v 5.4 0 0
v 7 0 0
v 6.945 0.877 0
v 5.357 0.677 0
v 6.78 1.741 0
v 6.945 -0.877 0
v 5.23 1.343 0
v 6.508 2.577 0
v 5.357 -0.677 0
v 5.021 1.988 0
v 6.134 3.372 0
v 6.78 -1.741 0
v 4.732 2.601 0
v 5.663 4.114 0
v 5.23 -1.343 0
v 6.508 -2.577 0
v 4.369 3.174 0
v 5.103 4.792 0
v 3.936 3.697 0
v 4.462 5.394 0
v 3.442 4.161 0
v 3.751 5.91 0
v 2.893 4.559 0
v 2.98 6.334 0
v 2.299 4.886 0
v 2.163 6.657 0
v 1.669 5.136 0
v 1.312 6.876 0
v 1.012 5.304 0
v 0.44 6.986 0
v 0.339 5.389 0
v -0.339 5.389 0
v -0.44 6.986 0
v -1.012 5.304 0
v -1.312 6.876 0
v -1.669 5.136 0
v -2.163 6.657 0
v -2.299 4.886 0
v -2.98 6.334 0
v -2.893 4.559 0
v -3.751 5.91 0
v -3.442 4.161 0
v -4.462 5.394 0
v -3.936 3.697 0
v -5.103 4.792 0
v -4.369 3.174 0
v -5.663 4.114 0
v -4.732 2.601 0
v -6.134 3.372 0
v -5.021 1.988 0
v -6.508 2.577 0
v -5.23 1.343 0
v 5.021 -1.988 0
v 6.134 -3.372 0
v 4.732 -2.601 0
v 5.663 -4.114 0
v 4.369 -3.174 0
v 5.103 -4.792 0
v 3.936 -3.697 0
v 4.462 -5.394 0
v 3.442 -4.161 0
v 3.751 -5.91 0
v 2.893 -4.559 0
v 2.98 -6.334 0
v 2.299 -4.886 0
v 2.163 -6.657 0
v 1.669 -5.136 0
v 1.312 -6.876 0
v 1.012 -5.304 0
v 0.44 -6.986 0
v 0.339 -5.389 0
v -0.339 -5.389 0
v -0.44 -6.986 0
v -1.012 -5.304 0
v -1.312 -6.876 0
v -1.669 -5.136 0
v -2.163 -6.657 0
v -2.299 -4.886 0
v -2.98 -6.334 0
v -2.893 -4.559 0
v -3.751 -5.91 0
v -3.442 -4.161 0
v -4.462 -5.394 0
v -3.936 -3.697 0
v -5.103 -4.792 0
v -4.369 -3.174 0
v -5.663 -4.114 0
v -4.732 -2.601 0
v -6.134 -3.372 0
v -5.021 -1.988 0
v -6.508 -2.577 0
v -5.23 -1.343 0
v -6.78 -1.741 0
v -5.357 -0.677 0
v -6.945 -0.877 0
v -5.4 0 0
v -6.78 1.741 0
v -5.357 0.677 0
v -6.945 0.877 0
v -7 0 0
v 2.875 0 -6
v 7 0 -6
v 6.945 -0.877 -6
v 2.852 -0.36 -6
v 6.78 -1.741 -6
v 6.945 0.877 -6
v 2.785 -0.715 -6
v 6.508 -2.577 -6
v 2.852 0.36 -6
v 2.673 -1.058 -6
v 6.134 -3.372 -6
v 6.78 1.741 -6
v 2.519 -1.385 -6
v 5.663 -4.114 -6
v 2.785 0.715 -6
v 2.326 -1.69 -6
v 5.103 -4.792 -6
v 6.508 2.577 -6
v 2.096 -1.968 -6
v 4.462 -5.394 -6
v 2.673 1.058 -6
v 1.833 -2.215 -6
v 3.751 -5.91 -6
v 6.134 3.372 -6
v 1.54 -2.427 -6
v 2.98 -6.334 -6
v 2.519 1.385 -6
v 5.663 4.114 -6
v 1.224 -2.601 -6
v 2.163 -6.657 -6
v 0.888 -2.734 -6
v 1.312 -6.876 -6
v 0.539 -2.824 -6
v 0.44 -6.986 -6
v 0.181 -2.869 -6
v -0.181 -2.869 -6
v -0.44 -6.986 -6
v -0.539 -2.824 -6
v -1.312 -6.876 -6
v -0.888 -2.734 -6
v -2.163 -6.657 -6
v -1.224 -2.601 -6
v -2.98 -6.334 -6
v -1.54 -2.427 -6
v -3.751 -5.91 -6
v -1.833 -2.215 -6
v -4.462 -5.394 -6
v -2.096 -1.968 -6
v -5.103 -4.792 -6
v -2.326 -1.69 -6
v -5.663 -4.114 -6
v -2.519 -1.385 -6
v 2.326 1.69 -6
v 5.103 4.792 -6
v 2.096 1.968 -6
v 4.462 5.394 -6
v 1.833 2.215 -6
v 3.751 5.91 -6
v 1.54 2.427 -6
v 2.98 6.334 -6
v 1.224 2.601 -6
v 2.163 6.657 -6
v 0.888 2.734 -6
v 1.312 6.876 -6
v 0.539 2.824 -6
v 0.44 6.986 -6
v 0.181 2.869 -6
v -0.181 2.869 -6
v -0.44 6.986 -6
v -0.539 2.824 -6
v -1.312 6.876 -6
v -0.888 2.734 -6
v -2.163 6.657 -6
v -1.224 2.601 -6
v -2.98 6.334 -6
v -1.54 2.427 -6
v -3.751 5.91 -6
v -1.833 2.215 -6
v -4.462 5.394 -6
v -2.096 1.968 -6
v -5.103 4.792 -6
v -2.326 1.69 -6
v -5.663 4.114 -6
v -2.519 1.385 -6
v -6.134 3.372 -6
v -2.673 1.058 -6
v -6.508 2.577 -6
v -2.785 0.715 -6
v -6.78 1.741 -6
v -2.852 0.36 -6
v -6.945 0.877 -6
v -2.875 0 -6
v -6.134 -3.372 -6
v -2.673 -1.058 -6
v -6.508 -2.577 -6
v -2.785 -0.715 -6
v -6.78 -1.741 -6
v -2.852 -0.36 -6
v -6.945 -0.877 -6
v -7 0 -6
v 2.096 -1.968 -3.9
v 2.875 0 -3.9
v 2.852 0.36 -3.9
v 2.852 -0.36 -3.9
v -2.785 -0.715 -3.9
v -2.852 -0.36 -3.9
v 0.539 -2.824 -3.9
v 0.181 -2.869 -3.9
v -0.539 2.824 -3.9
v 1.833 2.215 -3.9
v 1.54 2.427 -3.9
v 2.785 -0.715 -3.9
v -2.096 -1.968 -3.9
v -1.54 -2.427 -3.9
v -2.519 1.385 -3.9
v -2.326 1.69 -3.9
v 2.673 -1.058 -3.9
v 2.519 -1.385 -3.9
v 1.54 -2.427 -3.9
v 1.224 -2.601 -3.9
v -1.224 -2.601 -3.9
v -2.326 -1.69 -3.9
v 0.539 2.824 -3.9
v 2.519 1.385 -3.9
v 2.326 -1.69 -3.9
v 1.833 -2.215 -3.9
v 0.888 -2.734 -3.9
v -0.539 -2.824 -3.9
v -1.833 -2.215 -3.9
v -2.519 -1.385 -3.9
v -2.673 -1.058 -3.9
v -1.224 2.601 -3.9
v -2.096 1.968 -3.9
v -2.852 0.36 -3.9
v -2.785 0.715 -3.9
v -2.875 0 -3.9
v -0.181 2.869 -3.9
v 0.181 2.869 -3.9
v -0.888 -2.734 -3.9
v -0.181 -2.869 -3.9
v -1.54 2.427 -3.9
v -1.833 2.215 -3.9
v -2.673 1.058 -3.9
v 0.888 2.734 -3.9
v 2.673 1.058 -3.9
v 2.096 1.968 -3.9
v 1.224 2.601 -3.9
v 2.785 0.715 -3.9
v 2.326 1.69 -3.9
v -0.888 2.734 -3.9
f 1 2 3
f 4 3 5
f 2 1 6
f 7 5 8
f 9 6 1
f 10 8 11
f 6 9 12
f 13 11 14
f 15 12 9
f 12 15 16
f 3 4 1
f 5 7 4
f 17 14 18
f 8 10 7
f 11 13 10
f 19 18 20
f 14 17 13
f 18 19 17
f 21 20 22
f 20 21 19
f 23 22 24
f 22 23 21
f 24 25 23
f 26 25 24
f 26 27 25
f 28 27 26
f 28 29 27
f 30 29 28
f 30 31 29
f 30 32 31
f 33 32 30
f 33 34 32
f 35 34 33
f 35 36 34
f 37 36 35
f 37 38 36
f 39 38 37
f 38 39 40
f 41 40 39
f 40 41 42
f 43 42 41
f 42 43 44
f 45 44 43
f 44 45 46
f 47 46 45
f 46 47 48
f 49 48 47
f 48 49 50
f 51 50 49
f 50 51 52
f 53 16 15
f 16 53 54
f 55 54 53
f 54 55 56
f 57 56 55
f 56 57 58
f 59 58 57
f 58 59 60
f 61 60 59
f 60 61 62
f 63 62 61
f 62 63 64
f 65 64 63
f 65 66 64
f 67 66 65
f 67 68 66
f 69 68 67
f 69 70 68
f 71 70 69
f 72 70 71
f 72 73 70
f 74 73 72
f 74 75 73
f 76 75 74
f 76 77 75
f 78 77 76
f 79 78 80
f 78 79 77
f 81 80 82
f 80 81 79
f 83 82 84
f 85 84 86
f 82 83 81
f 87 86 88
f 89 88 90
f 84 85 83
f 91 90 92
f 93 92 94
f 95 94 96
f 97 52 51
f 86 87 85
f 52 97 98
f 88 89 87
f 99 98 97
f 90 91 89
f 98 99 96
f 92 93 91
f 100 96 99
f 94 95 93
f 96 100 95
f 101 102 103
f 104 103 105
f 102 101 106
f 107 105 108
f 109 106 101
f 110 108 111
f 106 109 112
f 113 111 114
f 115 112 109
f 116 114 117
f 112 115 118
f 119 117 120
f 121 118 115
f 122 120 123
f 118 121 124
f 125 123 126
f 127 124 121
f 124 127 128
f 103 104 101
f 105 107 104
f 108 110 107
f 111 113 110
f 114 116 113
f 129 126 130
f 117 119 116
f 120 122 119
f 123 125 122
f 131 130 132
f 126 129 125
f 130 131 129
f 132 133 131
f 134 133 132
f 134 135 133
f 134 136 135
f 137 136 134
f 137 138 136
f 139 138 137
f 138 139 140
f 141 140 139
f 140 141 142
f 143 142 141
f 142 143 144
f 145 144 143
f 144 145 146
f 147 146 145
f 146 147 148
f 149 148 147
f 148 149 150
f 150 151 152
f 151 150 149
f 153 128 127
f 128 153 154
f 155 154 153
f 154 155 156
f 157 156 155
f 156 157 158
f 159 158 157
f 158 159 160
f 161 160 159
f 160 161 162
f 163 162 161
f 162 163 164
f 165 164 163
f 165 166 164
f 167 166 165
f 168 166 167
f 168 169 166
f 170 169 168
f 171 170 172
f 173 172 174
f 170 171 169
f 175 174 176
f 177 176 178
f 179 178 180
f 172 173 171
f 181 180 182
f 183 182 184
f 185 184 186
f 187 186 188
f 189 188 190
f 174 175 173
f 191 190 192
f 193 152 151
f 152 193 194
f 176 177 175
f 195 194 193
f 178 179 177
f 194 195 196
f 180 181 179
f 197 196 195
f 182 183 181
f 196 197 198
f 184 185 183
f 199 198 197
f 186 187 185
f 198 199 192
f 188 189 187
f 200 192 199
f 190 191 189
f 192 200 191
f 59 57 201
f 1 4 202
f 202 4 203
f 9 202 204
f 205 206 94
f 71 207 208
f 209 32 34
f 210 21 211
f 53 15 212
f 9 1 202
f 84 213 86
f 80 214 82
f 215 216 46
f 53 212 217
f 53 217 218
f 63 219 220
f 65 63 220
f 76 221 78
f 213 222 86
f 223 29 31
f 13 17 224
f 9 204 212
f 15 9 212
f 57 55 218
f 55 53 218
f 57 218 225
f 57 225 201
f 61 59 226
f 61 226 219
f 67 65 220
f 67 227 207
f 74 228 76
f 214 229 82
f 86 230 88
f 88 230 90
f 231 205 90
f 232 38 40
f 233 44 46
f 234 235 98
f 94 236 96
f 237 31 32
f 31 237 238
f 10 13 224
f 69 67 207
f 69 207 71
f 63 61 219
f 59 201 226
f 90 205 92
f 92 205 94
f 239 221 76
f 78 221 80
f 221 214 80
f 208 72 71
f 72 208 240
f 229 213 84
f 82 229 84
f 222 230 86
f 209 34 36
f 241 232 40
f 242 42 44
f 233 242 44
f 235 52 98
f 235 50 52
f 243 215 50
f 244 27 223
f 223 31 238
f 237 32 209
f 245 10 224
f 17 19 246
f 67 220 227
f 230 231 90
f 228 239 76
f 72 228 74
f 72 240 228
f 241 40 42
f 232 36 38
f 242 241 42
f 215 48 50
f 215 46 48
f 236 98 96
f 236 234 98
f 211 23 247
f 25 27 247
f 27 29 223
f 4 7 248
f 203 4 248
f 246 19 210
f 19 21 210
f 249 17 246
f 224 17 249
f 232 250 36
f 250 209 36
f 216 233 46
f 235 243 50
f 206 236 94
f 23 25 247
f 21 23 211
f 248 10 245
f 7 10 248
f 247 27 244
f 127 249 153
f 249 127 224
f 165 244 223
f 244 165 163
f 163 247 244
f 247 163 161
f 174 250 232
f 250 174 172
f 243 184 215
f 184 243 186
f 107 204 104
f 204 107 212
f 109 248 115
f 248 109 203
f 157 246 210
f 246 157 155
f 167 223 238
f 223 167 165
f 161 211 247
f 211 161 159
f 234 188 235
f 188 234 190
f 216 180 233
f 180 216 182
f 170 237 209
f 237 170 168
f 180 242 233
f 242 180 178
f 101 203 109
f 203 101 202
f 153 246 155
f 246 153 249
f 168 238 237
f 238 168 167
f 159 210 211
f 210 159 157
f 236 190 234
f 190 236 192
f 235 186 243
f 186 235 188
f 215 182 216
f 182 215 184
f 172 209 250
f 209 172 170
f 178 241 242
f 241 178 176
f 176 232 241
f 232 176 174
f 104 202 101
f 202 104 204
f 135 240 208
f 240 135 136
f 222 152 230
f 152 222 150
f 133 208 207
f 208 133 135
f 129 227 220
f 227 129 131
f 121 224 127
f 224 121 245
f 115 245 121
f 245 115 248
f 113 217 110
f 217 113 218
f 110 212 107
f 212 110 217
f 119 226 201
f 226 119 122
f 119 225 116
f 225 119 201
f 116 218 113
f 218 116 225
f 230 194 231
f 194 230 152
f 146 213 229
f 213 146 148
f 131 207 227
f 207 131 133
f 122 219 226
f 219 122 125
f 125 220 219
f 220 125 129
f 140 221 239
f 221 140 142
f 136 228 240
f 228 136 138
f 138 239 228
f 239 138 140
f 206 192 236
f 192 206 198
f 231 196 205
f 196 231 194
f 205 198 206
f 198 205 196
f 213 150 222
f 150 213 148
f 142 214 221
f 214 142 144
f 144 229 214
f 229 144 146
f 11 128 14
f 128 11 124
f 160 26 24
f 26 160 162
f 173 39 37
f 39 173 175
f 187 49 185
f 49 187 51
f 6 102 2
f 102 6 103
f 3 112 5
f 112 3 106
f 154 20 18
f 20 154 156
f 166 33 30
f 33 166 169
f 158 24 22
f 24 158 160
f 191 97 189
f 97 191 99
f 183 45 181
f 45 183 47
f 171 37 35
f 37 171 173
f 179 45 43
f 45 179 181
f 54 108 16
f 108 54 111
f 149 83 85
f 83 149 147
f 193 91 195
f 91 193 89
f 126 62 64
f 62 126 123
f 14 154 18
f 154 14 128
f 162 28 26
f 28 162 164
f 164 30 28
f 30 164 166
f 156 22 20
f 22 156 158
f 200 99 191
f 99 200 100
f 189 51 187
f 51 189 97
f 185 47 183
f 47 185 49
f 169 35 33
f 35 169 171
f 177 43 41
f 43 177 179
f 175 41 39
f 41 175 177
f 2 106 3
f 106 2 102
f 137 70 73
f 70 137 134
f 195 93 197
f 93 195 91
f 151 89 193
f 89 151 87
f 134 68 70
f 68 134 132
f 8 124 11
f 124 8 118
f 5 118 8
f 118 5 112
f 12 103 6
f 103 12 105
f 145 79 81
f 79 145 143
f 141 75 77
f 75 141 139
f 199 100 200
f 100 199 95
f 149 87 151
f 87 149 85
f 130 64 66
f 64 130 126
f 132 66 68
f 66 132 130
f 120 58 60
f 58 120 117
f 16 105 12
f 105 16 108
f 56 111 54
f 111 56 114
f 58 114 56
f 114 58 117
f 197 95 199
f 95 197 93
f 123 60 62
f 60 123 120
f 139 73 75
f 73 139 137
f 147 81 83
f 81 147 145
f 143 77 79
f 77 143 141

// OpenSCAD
$fn = 50;


difference() {
	union() {
		translate(v = [0, 0, -6.0000000000]) {
			cylinder(h = 6, r = 7.0000000000);
		}
		cylinder(h = 0, r = 13.0000000000);
	}
	union() {
		translate(v = [0, 0, 0]) {
			rotate(a = [0, 0, 0]) {
				difference() {
					union() {
						#translate(v = [0, 0, -6.0000000000]) {
							cylinder(h = 6, r = 2.6000000000);
						}
						#translate(v = [0, 0, -3.9000000000]) {
							cylinder(h = 3.9000000000, r = 7.0000000000, r1 = 2.8750000000, r2 = 5.4000000000);
						}
						#translate(v = [0, 0, -6.0000000000]) {
							cylinder(h = 6, r = 2.8750000000);
						}
						#translate(v = [0, 0, -6.0000000000]) {
							cylinder(h = 6, r = 2.6000000000);
						}
					}
					union();
				}
			}
		}
	}
}
